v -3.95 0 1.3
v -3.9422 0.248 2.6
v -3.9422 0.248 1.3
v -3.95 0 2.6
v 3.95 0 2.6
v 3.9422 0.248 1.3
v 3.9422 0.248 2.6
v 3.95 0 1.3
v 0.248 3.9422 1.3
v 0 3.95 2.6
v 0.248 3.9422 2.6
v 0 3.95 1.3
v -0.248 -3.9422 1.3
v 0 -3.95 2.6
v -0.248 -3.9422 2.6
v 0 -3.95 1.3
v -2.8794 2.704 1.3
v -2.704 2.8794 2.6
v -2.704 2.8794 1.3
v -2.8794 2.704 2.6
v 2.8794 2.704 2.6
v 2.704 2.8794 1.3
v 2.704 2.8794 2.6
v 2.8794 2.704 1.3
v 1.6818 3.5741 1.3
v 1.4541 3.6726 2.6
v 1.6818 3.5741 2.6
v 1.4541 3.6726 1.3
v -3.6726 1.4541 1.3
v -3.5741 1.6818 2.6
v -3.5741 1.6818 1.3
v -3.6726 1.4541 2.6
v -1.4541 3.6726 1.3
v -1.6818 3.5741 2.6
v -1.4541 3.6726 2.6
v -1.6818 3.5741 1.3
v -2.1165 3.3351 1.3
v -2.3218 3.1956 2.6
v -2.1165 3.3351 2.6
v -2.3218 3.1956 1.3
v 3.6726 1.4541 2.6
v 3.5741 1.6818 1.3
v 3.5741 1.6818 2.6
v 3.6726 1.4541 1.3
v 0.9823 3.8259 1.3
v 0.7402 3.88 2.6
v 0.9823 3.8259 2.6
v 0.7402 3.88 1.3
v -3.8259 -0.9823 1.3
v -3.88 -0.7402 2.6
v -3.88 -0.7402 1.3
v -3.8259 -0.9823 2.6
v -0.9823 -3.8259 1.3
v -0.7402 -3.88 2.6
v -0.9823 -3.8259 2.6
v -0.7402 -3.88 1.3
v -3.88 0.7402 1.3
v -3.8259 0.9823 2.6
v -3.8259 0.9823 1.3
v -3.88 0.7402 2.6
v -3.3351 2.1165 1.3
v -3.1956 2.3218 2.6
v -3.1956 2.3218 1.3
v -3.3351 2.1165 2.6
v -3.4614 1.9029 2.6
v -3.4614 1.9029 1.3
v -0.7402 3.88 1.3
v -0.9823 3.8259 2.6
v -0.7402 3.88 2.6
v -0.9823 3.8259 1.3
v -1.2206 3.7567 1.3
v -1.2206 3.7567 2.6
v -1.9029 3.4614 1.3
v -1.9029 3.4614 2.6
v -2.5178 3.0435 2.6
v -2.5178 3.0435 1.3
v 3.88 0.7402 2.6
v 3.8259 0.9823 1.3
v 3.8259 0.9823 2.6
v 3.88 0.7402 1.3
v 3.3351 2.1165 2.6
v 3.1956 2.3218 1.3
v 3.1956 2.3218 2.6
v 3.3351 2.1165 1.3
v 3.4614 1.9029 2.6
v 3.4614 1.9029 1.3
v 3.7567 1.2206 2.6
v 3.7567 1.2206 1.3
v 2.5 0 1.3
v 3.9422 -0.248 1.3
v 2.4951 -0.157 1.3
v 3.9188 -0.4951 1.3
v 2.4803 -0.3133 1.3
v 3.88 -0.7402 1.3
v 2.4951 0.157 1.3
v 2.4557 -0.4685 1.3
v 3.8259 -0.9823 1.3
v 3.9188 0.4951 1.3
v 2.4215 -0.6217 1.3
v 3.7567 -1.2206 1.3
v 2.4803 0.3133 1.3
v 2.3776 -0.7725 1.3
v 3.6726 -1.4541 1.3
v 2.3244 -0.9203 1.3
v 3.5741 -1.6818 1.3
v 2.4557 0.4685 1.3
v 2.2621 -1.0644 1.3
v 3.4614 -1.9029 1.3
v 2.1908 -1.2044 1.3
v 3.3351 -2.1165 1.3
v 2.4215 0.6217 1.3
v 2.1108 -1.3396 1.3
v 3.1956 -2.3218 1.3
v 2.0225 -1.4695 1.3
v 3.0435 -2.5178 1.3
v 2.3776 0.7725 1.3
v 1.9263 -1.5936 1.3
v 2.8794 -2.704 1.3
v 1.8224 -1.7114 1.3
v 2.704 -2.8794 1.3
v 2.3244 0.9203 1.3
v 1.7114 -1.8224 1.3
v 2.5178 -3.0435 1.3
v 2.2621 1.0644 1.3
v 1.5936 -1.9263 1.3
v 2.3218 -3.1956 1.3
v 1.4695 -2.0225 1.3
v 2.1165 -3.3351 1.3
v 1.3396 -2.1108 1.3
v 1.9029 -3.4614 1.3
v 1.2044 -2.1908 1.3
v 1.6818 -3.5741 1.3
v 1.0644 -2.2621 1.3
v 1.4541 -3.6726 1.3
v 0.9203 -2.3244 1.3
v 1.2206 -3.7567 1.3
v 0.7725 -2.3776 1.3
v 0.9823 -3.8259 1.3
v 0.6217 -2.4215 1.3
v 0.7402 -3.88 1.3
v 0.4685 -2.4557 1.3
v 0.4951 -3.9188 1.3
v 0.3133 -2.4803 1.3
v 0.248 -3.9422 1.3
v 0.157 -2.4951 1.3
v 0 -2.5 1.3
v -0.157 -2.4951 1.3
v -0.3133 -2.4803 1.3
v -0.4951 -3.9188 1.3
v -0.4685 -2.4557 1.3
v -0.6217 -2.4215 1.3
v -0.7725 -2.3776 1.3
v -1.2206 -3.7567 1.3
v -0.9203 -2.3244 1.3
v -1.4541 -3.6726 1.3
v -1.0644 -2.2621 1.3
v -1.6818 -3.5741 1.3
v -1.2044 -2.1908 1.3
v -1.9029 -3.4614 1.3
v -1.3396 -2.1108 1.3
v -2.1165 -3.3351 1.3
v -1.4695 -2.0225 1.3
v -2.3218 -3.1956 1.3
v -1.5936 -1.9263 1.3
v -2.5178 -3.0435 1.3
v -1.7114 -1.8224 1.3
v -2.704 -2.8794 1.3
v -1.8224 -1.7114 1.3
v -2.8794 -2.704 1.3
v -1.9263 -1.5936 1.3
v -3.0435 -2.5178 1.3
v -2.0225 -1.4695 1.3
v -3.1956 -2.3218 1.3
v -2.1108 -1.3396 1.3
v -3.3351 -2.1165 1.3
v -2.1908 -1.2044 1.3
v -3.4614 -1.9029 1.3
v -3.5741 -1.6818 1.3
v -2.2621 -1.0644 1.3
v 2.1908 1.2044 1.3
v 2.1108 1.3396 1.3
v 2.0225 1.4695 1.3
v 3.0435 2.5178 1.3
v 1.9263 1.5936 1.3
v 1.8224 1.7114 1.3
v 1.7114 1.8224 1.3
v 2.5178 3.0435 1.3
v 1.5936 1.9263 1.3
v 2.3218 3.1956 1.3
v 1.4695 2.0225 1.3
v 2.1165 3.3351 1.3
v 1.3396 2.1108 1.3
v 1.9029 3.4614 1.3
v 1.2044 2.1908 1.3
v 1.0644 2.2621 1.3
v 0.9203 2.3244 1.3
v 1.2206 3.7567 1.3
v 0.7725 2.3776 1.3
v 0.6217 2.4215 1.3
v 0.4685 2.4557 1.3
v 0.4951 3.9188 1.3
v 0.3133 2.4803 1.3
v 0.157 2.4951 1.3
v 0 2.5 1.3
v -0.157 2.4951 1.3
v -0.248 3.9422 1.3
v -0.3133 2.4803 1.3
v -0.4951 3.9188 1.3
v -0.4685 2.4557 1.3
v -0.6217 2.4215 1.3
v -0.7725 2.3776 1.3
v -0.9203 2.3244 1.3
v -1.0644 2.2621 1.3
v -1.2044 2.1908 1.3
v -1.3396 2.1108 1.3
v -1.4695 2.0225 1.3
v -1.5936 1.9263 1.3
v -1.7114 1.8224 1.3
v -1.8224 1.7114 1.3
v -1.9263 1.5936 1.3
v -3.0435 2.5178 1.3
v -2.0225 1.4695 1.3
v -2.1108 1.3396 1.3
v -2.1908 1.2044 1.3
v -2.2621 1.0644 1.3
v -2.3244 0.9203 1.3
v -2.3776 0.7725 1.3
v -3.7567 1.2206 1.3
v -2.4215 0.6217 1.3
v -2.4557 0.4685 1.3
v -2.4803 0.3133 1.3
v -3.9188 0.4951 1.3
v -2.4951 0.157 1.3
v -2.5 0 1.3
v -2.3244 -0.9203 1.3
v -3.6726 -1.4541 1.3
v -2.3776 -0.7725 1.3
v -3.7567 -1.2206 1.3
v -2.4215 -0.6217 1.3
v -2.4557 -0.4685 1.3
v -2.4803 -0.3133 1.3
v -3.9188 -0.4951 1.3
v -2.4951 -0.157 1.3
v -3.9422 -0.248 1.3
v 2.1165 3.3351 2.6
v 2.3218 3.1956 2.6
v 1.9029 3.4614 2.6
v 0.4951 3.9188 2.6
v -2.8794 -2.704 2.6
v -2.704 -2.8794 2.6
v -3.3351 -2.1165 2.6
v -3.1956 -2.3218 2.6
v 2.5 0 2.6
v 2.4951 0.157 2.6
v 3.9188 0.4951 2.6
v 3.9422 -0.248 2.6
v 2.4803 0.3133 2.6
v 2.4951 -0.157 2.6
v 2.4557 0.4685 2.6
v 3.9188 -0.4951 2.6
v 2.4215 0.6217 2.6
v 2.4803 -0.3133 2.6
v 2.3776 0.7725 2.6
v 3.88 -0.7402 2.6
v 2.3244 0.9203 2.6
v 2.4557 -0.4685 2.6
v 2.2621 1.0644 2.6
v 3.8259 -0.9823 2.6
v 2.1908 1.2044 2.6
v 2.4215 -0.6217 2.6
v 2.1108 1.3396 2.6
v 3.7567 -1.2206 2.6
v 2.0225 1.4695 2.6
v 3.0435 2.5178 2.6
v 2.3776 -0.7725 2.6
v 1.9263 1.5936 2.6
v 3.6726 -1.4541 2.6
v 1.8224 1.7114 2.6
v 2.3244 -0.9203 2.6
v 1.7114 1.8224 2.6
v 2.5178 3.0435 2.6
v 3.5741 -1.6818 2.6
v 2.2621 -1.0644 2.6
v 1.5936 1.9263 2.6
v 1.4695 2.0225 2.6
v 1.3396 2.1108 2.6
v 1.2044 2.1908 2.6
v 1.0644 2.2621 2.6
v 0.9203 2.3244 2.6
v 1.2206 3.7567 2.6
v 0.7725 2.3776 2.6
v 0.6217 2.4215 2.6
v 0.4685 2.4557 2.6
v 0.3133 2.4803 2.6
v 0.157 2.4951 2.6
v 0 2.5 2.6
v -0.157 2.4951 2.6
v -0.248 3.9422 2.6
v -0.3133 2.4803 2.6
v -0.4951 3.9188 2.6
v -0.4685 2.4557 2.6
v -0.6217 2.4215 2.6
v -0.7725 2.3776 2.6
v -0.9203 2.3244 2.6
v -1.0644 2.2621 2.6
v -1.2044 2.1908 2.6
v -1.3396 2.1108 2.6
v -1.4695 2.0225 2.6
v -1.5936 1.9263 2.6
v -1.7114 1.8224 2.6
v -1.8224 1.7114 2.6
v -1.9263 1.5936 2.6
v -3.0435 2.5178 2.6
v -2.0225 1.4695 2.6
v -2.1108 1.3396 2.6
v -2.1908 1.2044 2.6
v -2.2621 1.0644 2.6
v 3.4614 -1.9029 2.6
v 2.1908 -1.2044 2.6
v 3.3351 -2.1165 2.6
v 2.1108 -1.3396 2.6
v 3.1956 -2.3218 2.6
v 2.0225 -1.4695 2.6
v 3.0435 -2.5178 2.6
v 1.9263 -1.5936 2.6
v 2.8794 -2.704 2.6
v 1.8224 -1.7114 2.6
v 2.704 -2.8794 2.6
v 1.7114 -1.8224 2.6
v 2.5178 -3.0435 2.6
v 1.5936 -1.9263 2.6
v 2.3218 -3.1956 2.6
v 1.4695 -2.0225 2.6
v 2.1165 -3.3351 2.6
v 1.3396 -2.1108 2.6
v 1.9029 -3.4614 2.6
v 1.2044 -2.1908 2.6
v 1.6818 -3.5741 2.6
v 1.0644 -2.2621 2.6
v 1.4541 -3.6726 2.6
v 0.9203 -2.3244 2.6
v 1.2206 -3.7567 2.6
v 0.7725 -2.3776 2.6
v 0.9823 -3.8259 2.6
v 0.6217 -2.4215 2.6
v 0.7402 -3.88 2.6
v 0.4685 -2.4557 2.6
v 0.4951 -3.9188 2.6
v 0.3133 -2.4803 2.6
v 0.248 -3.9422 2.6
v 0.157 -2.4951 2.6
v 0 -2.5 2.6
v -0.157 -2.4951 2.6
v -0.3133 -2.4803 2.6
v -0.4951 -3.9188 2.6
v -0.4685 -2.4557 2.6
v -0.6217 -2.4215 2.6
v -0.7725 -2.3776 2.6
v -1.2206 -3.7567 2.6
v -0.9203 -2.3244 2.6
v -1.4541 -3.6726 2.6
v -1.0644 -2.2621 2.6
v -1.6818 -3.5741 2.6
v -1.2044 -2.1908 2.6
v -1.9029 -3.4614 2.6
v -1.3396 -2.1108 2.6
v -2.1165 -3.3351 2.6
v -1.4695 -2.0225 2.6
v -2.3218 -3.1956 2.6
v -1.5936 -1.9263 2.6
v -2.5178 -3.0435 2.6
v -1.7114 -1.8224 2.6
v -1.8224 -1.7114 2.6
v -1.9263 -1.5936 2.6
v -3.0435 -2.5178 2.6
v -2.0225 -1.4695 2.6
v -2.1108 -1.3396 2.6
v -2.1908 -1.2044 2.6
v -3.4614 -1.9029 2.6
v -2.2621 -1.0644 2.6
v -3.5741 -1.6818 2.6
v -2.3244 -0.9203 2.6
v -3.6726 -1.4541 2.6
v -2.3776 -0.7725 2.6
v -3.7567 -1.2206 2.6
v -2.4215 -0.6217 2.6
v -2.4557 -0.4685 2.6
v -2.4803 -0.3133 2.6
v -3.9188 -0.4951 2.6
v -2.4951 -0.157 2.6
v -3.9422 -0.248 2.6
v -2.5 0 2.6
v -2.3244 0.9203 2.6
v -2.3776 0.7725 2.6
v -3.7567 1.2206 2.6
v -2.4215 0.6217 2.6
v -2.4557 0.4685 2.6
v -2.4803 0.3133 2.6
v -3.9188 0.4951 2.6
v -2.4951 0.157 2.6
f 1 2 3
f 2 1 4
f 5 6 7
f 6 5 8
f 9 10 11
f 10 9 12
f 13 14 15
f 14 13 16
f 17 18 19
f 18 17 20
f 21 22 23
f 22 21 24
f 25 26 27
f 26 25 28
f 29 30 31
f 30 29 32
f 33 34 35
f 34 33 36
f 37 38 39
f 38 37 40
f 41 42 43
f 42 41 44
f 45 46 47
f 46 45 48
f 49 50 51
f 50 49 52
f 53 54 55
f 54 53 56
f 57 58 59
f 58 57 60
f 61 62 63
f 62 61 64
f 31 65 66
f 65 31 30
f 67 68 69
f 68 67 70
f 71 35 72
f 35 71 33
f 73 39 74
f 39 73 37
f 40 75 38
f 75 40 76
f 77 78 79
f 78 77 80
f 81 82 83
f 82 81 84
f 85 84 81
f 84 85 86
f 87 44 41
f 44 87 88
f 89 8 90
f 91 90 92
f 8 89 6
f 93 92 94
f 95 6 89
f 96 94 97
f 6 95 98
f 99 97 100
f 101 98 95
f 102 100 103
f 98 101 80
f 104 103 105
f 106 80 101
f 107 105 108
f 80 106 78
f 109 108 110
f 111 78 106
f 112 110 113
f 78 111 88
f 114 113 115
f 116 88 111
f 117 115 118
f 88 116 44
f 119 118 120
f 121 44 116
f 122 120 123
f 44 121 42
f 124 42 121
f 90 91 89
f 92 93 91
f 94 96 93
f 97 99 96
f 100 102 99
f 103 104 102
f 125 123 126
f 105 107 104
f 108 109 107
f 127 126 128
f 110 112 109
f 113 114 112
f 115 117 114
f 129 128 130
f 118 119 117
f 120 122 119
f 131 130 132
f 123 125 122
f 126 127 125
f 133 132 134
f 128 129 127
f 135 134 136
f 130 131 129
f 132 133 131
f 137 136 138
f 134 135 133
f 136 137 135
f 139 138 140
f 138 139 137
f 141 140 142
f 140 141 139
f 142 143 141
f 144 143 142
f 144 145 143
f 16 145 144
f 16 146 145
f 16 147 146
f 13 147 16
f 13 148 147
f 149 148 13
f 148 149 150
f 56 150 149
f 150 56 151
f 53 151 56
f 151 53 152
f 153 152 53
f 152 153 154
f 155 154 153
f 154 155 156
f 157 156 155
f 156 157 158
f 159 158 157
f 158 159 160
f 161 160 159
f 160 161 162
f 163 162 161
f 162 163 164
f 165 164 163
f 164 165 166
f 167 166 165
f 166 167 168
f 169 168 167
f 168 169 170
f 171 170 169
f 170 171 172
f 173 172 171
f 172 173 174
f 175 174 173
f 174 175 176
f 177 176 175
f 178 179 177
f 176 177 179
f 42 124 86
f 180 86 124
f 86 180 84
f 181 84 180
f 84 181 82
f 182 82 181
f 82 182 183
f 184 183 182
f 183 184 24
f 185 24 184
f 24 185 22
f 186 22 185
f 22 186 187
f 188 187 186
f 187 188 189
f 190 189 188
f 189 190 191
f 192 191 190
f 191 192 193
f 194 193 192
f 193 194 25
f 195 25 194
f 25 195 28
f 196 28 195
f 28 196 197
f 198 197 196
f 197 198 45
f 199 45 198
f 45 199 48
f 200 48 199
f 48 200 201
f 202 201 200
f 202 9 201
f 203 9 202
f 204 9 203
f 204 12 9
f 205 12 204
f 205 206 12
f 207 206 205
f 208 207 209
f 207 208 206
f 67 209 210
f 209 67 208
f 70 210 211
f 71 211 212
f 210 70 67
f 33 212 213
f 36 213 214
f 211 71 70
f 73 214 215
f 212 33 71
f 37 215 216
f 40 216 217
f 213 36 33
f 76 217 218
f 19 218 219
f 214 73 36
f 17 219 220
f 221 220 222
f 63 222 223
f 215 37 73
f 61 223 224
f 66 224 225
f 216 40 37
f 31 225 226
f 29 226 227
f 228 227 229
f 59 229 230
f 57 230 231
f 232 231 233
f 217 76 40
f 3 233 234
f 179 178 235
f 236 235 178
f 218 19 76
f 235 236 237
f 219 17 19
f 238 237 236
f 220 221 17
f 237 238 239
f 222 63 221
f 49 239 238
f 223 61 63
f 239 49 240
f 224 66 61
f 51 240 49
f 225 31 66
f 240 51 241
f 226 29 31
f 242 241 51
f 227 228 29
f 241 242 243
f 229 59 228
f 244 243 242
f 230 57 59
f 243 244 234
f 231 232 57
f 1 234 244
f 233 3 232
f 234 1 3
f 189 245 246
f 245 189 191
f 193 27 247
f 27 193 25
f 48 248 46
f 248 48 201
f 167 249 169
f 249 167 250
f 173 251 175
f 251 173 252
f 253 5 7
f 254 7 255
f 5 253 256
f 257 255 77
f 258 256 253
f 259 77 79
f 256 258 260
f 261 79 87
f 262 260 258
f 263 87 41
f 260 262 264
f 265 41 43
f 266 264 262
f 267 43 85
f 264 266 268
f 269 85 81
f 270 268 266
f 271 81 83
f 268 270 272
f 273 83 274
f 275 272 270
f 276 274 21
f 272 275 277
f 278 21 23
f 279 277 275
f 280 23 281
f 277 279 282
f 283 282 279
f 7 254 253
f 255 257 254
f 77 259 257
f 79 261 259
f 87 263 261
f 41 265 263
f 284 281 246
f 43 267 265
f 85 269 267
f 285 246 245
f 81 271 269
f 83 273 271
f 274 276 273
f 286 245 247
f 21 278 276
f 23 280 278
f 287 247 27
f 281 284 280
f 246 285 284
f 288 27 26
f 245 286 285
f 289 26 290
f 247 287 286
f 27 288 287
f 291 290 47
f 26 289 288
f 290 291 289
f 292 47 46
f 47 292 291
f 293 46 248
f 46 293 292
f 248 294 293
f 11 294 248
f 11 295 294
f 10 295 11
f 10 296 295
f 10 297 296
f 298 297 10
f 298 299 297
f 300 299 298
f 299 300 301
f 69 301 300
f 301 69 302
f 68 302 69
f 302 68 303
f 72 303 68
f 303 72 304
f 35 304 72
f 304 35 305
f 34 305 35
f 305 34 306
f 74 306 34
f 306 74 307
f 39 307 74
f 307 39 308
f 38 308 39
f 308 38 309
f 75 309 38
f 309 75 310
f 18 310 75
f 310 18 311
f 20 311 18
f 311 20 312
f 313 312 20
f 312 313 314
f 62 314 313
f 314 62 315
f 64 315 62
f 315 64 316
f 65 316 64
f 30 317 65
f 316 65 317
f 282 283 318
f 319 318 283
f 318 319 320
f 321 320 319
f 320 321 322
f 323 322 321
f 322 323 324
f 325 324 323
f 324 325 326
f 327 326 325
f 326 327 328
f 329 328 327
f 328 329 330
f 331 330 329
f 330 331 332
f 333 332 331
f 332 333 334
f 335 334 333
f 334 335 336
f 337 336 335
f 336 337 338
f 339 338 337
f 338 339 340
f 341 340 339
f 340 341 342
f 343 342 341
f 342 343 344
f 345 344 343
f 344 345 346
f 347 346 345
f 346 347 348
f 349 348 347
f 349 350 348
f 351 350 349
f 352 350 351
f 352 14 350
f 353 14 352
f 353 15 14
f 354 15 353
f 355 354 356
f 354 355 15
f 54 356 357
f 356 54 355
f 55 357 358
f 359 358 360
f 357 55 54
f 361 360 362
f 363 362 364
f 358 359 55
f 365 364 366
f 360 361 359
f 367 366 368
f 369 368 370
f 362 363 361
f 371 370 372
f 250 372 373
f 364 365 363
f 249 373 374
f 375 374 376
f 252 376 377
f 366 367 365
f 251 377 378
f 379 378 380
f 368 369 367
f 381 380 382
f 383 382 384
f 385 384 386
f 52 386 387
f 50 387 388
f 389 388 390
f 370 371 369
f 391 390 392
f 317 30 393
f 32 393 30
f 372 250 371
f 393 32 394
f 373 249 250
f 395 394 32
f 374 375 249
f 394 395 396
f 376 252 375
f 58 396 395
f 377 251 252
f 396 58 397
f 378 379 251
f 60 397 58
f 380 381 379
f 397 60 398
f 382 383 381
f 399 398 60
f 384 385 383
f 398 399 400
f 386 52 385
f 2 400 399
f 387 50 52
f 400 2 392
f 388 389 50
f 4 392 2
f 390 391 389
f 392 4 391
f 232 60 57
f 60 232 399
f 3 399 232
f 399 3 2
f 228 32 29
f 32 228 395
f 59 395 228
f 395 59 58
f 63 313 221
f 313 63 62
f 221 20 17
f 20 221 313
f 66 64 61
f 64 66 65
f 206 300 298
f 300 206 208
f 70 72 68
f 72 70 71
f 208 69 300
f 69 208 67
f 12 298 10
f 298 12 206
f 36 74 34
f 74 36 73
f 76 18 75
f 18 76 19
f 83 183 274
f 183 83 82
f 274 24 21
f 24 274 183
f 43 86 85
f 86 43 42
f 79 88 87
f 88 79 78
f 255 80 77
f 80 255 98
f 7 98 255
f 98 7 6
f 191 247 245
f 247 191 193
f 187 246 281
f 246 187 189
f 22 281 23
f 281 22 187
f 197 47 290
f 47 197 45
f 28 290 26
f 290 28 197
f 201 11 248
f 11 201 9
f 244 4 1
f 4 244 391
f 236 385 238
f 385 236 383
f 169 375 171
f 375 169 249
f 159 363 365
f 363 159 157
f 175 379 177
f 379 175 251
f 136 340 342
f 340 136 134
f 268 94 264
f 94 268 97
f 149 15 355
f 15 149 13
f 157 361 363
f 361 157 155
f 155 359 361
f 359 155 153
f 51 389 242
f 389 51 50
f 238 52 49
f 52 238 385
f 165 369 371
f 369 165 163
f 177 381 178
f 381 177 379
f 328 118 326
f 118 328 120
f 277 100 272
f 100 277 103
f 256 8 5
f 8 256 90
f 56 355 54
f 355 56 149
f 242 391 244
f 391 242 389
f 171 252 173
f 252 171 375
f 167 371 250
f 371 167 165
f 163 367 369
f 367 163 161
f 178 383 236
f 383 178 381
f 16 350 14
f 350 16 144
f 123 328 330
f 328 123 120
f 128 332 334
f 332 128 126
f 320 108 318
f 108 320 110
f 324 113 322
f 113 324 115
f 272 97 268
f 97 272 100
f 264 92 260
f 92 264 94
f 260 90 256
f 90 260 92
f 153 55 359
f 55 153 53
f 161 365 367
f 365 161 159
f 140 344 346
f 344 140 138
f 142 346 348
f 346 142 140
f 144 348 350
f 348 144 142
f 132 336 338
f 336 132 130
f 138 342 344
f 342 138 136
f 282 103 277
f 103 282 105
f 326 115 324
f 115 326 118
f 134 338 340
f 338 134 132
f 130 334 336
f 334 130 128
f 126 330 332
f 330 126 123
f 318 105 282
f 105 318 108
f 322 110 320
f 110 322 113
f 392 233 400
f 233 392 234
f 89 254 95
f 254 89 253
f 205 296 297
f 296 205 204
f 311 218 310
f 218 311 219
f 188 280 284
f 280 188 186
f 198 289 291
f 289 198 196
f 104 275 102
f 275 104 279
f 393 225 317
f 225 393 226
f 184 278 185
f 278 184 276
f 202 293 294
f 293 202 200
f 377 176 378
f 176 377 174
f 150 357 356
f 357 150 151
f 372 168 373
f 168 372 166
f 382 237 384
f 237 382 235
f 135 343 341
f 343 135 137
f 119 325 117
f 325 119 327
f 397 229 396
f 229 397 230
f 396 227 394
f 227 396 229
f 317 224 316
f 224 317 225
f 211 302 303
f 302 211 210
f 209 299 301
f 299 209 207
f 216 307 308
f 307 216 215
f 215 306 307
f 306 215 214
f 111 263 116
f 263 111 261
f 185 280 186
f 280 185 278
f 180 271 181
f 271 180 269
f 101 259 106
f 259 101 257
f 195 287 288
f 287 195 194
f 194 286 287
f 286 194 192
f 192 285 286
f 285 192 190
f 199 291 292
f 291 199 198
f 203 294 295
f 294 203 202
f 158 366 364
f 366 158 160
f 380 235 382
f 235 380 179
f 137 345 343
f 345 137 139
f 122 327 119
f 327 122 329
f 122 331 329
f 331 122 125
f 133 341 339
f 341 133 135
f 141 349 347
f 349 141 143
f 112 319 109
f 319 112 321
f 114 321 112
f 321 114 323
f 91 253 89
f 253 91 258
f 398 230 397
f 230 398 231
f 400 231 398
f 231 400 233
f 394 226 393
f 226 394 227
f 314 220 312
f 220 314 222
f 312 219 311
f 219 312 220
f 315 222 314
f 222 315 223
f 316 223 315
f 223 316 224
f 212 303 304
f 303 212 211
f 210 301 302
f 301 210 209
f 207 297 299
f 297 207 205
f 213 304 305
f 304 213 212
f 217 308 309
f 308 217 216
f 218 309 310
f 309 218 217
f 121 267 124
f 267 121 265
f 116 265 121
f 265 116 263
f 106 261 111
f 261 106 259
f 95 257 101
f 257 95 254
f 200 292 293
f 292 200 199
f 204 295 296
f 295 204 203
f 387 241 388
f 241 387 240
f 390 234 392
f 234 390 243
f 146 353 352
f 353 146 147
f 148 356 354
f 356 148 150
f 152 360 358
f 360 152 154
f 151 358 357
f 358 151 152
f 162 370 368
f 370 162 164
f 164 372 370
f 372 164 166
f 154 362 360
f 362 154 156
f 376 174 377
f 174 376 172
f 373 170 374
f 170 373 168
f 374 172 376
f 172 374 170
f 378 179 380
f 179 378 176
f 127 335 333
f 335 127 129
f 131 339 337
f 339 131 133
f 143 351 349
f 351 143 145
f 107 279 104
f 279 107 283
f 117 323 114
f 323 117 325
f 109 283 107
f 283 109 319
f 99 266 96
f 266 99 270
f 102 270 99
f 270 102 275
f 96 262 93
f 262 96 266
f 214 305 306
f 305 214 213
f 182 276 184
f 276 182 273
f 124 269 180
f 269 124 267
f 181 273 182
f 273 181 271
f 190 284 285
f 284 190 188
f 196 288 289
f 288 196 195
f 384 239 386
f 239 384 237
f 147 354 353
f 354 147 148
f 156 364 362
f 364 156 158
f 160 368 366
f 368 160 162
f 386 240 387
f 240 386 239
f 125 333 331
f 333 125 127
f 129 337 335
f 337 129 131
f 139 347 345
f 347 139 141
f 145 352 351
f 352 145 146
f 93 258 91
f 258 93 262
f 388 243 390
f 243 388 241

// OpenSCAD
// file: ../src/WINDGAUGE02A_R04.scad
$fn=40; // model faces resolution.
include <../configuration.scad>

//podložka u ložiska - nahrazena kovovou
module WINDGAUGE02A_R04 ()
    {
    difference()
        {
        union()
            {
            translate([0,0,0])
                cylinder (h = S01_sila_materialu, r=(lozisko_prumer_vnitrni+2*lozisko_prekryv)/2, center = true, $fn=100); 
            }    
   
        translate([0,0,1/2*S01_sila_materialu-(lozisko_vyska)/2])             
            cylinder (h = 2*S01_sila_materialu+lozisko_vyska+0.1, r=((prumer_osicky)/2), center = true, $fn=100);   
        }
    }
 
 WINDGAUGE02A_R04 ();
// file: ../configuration.scad
$fn=40; // model faces resolution.

//OBECNE PARAMETRY 
//----------------------------------------------------------------
//----------------------------------------------------------------
//WINDGAUGE02A_S02 - Parametry pro hlavni valec anemometru
S01_hloubka_zavitu=4;
S01_vyska=95; //80
S01_prumer_vnitrni=45;
S01_prumer_vnitrniB=30;
S01_prechod_vyska=45;
S01_prechod_delka=30;
S01_sila_materialu=1.3;
S01_vyska_horni_zavit=10;
S01_vyska_spodniho_zavitu=10;
S01_sila_drzaku_RJ11=3; //vyška drážky
S01_hrana_A_RJ11=12.3;
S01_hrana_B_RJ11=19;
S01_tolerance_zavit=1.5;

//Obecné parametry
prumer_osicky=5;
sterbina_na_osicku=0.5; //aby nepraskal a držel držák rotoru na hřídelce

//Rozmery modulu pro lozisko
senzor_delka=10.16*4;
senzor_sirka=10.16*3;
senzor_vyska_IO=2;
senzor_odstup_od_magnetu=2;

//Parametry loziska
lozisko_prumer_vnitrni=4.9;
lozisko_prumer_vnejsi=16.15;
lozisko_vyska=5*2;
lozisko_prekryv=1.5;

//Parametry magnetu
magnet_pocet=3;
magnet_prumer=6.3;
magnet_vyska=3;
magnet_zapusteni=2;
magnet_tolerance_prumeru=0.2;
magnet_vzdalenost = 9; // vzdalenost magnetu od stredu

R03_vyska_narezeni_hridelky=5;

//Parametry sroubu
prumer_sroubu=3.4;
prumer_hlavy_sroubu=6;
vyska_hlavy_sroubu=4;
vyska_matky=3;
sirka_matky=6.7;

sirka_matky_tol=0.175;
prumer_orechu=10;

//WINDGAUGE02A_R01 //pro lopatku
L01_hrana_drzaku_a=10;
L01_hrana_drzaku_b=3;
L01_delka_uchytu=25;
L01_prumer_lopatky=40;
L01_sila_materialu_lopatky=1.2;

//WINDGAUGE02A_D01 //uchyt velky
D01_material_pod_zavitem=5;
D01_material_za_zavitem=3;
D01_material_pred_zavitem=2;
D01_delka_tyce=60;
D01_sirka_tyce=10;

//WINDGAUGE02A_D02 //uchyt na sloup
D02_sila_materialu=4;
D02_vyska_uchytky=30;
D02_prumer_obruby=24; 

//27mm - 3/4 trubka
D02_delka_celeho_uchytu=60;
D02_dotahova_vzdalenost=1.5;
D02_prumer_uchytneho_sroubu=4.2;
//D02_sirka_matky=9.1; //pro M4
//D02_vyska_matky=3;
D02_sirka_matky= sirka_matky; //pro M3
D02_vyska_matky= vyska_matky;

//WINDGAUGE02A_R01 //rotor s prekritim statoru
R01_vyska_preryti_statoru=10;
R01_sila_materialu_pro_prekriti=1.3;
R01_mezera_mezi_statorem_rotorem=3;

//WINDGAUGE02A_R03 //drzak magnetu
R05_sirka_matky=10;
// main file
$fn=100; // model faces resolution.
include <../configuration.scad>

use <../src/WINDGAUGE02A_R04.scad>

//neni potřeba
    translate([0,0,3/2*S01_sila_materialu])
        rotate([0,180, 0])
            WINDGAUGE02A_R04 ();   
